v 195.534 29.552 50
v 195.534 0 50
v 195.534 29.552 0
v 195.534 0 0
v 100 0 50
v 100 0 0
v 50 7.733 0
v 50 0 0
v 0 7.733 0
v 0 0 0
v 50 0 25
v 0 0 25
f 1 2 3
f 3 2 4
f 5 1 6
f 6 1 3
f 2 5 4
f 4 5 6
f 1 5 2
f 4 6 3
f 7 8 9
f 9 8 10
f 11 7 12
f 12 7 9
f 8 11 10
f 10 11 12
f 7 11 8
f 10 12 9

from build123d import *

# Parameters (mm, degrees)
EXTRUDE_1_DEPTH = 50
EXTRUDE_2_DEPTH = 50


with BuildPart() as part:
    # 草图2 → 凸台-拉伸1 (new body)
    with BuildSketch(Plane.XY):
        Polygon((195.533648913, 29.552020666), (100, 0), (195.533648913, 0), align=None)
    extrude(amount=EXTRUDE_1_DEPTH)


with BuildPart() as body_2:
    # 草图3 → 凸台-拉伸2 (new body)
    with BuildSketch(Plane(origin=(0, 0, 0), x_dir=(0, 0, -1), z_dir=(1, 0, 0))):
        Polygon((0, 0), (0, 7.73340624), (-25, 0), align=None)
    extrude(amount=EXTRUDE_2_DEPTH)


solid = Compound([part.part, body_2.part])
